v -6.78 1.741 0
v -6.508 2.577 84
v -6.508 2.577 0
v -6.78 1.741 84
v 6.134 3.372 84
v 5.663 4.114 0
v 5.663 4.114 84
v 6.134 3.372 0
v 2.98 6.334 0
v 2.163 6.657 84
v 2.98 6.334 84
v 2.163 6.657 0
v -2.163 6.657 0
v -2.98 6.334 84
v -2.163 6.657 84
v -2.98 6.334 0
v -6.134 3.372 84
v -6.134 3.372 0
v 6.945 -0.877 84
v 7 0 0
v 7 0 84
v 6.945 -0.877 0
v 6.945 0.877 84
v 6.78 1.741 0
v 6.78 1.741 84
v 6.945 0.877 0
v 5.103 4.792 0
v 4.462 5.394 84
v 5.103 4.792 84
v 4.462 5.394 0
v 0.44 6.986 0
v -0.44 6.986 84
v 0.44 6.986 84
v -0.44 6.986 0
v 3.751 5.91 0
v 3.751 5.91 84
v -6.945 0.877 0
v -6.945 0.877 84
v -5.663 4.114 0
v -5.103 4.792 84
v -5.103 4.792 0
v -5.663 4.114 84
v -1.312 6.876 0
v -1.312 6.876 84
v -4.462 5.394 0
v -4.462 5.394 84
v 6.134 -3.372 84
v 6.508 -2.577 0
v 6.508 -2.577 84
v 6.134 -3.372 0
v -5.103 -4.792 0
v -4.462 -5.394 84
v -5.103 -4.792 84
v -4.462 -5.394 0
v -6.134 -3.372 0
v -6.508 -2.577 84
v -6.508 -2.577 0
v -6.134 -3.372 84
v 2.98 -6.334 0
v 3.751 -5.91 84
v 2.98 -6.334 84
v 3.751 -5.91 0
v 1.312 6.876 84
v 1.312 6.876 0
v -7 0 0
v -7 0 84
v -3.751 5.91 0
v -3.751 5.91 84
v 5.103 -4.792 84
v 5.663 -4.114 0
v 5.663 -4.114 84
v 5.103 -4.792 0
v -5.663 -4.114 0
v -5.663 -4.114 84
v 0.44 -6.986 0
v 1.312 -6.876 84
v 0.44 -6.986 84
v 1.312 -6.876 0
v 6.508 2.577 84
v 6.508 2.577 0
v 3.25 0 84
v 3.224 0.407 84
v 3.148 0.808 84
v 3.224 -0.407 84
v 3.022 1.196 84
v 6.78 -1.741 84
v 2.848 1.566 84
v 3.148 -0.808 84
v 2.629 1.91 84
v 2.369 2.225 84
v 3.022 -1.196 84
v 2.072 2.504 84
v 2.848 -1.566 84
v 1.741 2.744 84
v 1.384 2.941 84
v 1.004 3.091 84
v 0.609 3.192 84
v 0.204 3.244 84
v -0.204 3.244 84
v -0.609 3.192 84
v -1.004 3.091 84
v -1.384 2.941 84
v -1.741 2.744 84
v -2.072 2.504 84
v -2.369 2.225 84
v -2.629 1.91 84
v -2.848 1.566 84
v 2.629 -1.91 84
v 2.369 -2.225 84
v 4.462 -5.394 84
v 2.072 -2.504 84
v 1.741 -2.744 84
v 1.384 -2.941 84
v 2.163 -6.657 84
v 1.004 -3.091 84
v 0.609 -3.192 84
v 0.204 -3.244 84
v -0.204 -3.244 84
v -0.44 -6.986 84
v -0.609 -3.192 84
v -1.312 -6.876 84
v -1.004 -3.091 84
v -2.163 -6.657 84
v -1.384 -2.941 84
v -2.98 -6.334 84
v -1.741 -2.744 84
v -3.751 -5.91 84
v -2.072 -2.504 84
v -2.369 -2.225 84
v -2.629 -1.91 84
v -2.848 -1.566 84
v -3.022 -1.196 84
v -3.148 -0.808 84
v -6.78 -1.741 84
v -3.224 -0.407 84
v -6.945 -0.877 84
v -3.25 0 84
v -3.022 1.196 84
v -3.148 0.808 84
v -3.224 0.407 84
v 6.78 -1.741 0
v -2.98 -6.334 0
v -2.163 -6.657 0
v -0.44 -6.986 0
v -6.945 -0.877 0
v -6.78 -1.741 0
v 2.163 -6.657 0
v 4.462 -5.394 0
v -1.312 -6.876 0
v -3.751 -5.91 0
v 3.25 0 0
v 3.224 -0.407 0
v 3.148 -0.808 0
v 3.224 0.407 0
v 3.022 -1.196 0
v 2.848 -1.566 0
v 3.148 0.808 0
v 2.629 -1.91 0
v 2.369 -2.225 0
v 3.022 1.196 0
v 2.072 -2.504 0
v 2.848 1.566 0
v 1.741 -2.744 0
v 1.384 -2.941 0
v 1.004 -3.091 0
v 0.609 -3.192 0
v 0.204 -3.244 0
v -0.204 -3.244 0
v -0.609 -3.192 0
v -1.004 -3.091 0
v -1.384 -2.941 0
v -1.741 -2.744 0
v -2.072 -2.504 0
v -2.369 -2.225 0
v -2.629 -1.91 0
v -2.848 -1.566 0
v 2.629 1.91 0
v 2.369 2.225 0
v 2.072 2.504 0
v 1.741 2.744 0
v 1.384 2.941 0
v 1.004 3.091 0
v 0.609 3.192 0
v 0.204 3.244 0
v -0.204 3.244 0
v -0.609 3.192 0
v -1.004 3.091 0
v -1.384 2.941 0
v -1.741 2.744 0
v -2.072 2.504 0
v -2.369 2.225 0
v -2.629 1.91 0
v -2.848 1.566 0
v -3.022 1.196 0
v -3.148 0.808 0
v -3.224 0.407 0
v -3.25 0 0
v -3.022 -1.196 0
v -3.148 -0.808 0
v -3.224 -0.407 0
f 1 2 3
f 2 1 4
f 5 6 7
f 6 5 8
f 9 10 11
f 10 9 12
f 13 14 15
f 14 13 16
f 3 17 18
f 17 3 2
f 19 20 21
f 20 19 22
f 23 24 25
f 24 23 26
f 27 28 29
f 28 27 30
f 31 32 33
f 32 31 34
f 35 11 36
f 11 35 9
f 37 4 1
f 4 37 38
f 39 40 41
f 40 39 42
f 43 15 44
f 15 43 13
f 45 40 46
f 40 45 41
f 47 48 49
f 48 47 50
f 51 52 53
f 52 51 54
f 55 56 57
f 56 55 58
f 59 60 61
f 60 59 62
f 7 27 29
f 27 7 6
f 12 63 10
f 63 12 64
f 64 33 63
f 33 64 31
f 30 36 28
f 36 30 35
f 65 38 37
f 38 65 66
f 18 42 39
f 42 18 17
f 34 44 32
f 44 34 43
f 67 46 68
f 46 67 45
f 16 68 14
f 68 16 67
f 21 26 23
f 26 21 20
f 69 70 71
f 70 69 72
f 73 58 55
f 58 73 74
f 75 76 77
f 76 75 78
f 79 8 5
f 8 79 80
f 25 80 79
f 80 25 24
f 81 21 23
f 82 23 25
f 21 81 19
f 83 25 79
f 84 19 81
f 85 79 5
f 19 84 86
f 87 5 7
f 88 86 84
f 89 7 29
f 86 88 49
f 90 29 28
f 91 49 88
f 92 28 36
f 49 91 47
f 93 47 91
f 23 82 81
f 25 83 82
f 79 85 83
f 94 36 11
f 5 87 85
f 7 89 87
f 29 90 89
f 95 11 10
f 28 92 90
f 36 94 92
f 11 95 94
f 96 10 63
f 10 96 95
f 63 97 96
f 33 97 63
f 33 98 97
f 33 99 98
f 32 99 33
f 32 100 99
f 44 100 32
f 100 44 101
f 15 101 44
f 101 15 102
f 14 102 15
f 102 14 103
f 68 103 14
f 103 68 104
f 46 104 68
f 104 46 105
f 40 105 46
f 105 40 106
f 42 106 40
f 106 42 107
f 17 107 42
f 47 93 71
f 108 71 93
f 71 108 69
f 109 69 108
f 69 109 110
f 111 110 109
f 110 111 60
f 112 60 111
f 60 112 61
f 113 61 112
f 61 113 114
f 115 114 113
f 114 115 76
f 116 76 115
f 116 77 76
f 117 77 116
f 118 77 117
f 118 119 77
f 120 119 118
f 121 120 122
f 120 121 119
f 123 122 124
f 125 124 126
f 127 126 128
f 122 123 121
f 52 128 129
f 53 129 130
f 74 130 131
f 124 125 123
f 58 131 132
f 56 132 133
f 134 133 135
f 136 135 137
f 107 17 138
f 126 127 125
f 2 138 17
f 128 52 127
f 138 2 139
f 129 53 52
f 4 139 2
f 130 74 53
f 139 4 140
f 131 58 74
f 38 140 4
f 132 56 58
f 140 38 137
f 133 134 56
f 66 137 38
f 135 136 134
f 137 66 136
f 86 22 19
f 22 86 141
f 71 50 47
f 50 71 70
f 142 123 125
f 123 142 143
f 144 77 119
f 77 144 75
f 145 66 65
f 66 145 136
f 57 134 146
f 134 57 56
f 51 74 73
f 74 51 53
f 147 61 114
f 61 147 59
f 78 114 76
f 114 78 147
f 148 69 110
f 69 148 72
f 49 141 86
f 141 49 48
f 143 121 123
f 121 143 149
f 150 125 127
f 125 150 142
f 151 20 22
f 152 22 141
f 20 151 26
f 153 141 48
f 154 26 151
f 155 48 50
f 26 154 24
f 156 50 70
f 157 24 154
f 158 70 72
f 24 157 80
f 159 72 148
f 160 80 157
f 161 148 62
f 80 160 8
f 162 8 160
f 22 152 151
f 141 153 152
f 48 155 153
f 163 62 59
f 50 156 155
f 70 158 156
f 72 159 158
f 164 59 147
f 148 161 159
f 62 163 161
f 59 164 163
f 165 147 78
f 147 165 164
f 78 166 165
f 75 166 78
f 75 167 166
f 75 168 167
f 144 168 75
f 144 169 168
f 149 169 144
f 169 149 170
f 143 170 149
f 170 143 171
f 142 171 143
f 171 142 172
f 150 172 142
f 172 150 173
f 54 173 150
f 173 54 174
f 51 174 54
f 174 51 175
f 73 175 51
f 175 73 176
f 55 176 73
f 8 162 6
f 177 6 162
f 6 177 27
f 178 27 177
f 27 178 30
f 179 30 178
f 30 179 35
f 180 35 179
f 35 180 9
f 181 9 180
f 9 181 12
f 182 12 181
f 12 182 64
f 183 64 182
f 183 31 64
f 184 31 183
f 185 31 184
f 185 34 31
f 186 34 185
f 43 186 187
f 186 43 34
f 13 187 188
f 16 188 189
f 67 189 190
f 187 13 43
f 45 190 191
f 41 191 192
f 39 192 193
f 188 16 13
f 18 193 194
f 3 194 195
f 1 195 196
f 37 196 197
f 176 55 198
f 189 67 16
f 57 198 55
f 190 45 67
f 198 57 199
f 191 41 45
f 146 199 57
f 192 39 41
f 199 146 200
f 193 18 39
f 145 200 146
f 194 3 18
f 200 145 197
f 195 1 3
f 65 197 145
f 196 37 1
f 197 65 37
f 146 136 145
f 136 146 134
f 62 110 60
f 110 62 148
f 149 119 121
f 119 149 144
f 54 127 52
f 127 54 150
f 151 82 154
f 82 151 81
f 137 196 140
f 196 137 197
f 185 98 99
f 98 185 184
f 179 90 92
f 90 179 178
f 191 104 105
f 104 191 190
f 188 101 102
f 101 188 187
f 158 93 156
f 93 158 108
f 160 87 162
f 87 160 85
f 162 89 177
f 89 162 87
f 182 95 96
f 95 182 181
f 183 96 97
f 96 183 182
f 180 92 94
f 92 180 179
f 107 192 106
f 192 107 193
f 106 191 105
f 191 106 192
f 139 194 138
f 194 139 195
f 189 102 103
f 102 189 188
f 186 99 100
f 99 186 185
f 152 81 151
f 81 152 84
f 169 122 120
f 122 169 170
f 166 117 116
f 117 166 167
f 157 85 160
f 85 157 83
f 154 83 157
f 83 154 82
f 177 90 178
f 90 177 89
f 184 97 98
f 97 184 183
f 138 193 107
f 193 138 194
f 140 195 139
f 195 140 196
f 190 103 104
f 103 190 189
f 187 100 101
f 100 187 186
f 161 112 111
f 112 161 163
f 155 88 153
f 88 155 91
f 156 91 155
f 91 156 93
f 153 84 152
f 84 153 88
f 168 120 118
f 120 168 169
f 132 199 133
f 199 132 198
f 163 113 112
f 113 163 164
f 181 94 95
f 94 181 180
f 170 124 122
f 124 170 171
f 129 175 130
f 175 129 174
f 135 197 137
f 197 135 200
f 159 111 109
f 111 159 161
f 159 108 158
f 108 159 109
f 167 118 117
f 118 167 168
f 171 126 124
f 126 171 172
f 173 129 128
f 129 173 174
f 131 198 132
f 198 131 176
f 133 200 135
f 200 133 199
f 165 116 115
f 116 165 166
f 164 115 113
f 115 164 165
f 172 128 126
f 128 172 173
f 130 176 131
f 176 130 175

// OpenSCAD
$fn = 50;


difference() {
	union() {
		cylinder(h = 84, r = 7.0000000000);
	}
	union() {
		translate(v = [0, 0, -100]) {
			cylinder(h = 200, r = 3.2500000000);
		}
	}
}
